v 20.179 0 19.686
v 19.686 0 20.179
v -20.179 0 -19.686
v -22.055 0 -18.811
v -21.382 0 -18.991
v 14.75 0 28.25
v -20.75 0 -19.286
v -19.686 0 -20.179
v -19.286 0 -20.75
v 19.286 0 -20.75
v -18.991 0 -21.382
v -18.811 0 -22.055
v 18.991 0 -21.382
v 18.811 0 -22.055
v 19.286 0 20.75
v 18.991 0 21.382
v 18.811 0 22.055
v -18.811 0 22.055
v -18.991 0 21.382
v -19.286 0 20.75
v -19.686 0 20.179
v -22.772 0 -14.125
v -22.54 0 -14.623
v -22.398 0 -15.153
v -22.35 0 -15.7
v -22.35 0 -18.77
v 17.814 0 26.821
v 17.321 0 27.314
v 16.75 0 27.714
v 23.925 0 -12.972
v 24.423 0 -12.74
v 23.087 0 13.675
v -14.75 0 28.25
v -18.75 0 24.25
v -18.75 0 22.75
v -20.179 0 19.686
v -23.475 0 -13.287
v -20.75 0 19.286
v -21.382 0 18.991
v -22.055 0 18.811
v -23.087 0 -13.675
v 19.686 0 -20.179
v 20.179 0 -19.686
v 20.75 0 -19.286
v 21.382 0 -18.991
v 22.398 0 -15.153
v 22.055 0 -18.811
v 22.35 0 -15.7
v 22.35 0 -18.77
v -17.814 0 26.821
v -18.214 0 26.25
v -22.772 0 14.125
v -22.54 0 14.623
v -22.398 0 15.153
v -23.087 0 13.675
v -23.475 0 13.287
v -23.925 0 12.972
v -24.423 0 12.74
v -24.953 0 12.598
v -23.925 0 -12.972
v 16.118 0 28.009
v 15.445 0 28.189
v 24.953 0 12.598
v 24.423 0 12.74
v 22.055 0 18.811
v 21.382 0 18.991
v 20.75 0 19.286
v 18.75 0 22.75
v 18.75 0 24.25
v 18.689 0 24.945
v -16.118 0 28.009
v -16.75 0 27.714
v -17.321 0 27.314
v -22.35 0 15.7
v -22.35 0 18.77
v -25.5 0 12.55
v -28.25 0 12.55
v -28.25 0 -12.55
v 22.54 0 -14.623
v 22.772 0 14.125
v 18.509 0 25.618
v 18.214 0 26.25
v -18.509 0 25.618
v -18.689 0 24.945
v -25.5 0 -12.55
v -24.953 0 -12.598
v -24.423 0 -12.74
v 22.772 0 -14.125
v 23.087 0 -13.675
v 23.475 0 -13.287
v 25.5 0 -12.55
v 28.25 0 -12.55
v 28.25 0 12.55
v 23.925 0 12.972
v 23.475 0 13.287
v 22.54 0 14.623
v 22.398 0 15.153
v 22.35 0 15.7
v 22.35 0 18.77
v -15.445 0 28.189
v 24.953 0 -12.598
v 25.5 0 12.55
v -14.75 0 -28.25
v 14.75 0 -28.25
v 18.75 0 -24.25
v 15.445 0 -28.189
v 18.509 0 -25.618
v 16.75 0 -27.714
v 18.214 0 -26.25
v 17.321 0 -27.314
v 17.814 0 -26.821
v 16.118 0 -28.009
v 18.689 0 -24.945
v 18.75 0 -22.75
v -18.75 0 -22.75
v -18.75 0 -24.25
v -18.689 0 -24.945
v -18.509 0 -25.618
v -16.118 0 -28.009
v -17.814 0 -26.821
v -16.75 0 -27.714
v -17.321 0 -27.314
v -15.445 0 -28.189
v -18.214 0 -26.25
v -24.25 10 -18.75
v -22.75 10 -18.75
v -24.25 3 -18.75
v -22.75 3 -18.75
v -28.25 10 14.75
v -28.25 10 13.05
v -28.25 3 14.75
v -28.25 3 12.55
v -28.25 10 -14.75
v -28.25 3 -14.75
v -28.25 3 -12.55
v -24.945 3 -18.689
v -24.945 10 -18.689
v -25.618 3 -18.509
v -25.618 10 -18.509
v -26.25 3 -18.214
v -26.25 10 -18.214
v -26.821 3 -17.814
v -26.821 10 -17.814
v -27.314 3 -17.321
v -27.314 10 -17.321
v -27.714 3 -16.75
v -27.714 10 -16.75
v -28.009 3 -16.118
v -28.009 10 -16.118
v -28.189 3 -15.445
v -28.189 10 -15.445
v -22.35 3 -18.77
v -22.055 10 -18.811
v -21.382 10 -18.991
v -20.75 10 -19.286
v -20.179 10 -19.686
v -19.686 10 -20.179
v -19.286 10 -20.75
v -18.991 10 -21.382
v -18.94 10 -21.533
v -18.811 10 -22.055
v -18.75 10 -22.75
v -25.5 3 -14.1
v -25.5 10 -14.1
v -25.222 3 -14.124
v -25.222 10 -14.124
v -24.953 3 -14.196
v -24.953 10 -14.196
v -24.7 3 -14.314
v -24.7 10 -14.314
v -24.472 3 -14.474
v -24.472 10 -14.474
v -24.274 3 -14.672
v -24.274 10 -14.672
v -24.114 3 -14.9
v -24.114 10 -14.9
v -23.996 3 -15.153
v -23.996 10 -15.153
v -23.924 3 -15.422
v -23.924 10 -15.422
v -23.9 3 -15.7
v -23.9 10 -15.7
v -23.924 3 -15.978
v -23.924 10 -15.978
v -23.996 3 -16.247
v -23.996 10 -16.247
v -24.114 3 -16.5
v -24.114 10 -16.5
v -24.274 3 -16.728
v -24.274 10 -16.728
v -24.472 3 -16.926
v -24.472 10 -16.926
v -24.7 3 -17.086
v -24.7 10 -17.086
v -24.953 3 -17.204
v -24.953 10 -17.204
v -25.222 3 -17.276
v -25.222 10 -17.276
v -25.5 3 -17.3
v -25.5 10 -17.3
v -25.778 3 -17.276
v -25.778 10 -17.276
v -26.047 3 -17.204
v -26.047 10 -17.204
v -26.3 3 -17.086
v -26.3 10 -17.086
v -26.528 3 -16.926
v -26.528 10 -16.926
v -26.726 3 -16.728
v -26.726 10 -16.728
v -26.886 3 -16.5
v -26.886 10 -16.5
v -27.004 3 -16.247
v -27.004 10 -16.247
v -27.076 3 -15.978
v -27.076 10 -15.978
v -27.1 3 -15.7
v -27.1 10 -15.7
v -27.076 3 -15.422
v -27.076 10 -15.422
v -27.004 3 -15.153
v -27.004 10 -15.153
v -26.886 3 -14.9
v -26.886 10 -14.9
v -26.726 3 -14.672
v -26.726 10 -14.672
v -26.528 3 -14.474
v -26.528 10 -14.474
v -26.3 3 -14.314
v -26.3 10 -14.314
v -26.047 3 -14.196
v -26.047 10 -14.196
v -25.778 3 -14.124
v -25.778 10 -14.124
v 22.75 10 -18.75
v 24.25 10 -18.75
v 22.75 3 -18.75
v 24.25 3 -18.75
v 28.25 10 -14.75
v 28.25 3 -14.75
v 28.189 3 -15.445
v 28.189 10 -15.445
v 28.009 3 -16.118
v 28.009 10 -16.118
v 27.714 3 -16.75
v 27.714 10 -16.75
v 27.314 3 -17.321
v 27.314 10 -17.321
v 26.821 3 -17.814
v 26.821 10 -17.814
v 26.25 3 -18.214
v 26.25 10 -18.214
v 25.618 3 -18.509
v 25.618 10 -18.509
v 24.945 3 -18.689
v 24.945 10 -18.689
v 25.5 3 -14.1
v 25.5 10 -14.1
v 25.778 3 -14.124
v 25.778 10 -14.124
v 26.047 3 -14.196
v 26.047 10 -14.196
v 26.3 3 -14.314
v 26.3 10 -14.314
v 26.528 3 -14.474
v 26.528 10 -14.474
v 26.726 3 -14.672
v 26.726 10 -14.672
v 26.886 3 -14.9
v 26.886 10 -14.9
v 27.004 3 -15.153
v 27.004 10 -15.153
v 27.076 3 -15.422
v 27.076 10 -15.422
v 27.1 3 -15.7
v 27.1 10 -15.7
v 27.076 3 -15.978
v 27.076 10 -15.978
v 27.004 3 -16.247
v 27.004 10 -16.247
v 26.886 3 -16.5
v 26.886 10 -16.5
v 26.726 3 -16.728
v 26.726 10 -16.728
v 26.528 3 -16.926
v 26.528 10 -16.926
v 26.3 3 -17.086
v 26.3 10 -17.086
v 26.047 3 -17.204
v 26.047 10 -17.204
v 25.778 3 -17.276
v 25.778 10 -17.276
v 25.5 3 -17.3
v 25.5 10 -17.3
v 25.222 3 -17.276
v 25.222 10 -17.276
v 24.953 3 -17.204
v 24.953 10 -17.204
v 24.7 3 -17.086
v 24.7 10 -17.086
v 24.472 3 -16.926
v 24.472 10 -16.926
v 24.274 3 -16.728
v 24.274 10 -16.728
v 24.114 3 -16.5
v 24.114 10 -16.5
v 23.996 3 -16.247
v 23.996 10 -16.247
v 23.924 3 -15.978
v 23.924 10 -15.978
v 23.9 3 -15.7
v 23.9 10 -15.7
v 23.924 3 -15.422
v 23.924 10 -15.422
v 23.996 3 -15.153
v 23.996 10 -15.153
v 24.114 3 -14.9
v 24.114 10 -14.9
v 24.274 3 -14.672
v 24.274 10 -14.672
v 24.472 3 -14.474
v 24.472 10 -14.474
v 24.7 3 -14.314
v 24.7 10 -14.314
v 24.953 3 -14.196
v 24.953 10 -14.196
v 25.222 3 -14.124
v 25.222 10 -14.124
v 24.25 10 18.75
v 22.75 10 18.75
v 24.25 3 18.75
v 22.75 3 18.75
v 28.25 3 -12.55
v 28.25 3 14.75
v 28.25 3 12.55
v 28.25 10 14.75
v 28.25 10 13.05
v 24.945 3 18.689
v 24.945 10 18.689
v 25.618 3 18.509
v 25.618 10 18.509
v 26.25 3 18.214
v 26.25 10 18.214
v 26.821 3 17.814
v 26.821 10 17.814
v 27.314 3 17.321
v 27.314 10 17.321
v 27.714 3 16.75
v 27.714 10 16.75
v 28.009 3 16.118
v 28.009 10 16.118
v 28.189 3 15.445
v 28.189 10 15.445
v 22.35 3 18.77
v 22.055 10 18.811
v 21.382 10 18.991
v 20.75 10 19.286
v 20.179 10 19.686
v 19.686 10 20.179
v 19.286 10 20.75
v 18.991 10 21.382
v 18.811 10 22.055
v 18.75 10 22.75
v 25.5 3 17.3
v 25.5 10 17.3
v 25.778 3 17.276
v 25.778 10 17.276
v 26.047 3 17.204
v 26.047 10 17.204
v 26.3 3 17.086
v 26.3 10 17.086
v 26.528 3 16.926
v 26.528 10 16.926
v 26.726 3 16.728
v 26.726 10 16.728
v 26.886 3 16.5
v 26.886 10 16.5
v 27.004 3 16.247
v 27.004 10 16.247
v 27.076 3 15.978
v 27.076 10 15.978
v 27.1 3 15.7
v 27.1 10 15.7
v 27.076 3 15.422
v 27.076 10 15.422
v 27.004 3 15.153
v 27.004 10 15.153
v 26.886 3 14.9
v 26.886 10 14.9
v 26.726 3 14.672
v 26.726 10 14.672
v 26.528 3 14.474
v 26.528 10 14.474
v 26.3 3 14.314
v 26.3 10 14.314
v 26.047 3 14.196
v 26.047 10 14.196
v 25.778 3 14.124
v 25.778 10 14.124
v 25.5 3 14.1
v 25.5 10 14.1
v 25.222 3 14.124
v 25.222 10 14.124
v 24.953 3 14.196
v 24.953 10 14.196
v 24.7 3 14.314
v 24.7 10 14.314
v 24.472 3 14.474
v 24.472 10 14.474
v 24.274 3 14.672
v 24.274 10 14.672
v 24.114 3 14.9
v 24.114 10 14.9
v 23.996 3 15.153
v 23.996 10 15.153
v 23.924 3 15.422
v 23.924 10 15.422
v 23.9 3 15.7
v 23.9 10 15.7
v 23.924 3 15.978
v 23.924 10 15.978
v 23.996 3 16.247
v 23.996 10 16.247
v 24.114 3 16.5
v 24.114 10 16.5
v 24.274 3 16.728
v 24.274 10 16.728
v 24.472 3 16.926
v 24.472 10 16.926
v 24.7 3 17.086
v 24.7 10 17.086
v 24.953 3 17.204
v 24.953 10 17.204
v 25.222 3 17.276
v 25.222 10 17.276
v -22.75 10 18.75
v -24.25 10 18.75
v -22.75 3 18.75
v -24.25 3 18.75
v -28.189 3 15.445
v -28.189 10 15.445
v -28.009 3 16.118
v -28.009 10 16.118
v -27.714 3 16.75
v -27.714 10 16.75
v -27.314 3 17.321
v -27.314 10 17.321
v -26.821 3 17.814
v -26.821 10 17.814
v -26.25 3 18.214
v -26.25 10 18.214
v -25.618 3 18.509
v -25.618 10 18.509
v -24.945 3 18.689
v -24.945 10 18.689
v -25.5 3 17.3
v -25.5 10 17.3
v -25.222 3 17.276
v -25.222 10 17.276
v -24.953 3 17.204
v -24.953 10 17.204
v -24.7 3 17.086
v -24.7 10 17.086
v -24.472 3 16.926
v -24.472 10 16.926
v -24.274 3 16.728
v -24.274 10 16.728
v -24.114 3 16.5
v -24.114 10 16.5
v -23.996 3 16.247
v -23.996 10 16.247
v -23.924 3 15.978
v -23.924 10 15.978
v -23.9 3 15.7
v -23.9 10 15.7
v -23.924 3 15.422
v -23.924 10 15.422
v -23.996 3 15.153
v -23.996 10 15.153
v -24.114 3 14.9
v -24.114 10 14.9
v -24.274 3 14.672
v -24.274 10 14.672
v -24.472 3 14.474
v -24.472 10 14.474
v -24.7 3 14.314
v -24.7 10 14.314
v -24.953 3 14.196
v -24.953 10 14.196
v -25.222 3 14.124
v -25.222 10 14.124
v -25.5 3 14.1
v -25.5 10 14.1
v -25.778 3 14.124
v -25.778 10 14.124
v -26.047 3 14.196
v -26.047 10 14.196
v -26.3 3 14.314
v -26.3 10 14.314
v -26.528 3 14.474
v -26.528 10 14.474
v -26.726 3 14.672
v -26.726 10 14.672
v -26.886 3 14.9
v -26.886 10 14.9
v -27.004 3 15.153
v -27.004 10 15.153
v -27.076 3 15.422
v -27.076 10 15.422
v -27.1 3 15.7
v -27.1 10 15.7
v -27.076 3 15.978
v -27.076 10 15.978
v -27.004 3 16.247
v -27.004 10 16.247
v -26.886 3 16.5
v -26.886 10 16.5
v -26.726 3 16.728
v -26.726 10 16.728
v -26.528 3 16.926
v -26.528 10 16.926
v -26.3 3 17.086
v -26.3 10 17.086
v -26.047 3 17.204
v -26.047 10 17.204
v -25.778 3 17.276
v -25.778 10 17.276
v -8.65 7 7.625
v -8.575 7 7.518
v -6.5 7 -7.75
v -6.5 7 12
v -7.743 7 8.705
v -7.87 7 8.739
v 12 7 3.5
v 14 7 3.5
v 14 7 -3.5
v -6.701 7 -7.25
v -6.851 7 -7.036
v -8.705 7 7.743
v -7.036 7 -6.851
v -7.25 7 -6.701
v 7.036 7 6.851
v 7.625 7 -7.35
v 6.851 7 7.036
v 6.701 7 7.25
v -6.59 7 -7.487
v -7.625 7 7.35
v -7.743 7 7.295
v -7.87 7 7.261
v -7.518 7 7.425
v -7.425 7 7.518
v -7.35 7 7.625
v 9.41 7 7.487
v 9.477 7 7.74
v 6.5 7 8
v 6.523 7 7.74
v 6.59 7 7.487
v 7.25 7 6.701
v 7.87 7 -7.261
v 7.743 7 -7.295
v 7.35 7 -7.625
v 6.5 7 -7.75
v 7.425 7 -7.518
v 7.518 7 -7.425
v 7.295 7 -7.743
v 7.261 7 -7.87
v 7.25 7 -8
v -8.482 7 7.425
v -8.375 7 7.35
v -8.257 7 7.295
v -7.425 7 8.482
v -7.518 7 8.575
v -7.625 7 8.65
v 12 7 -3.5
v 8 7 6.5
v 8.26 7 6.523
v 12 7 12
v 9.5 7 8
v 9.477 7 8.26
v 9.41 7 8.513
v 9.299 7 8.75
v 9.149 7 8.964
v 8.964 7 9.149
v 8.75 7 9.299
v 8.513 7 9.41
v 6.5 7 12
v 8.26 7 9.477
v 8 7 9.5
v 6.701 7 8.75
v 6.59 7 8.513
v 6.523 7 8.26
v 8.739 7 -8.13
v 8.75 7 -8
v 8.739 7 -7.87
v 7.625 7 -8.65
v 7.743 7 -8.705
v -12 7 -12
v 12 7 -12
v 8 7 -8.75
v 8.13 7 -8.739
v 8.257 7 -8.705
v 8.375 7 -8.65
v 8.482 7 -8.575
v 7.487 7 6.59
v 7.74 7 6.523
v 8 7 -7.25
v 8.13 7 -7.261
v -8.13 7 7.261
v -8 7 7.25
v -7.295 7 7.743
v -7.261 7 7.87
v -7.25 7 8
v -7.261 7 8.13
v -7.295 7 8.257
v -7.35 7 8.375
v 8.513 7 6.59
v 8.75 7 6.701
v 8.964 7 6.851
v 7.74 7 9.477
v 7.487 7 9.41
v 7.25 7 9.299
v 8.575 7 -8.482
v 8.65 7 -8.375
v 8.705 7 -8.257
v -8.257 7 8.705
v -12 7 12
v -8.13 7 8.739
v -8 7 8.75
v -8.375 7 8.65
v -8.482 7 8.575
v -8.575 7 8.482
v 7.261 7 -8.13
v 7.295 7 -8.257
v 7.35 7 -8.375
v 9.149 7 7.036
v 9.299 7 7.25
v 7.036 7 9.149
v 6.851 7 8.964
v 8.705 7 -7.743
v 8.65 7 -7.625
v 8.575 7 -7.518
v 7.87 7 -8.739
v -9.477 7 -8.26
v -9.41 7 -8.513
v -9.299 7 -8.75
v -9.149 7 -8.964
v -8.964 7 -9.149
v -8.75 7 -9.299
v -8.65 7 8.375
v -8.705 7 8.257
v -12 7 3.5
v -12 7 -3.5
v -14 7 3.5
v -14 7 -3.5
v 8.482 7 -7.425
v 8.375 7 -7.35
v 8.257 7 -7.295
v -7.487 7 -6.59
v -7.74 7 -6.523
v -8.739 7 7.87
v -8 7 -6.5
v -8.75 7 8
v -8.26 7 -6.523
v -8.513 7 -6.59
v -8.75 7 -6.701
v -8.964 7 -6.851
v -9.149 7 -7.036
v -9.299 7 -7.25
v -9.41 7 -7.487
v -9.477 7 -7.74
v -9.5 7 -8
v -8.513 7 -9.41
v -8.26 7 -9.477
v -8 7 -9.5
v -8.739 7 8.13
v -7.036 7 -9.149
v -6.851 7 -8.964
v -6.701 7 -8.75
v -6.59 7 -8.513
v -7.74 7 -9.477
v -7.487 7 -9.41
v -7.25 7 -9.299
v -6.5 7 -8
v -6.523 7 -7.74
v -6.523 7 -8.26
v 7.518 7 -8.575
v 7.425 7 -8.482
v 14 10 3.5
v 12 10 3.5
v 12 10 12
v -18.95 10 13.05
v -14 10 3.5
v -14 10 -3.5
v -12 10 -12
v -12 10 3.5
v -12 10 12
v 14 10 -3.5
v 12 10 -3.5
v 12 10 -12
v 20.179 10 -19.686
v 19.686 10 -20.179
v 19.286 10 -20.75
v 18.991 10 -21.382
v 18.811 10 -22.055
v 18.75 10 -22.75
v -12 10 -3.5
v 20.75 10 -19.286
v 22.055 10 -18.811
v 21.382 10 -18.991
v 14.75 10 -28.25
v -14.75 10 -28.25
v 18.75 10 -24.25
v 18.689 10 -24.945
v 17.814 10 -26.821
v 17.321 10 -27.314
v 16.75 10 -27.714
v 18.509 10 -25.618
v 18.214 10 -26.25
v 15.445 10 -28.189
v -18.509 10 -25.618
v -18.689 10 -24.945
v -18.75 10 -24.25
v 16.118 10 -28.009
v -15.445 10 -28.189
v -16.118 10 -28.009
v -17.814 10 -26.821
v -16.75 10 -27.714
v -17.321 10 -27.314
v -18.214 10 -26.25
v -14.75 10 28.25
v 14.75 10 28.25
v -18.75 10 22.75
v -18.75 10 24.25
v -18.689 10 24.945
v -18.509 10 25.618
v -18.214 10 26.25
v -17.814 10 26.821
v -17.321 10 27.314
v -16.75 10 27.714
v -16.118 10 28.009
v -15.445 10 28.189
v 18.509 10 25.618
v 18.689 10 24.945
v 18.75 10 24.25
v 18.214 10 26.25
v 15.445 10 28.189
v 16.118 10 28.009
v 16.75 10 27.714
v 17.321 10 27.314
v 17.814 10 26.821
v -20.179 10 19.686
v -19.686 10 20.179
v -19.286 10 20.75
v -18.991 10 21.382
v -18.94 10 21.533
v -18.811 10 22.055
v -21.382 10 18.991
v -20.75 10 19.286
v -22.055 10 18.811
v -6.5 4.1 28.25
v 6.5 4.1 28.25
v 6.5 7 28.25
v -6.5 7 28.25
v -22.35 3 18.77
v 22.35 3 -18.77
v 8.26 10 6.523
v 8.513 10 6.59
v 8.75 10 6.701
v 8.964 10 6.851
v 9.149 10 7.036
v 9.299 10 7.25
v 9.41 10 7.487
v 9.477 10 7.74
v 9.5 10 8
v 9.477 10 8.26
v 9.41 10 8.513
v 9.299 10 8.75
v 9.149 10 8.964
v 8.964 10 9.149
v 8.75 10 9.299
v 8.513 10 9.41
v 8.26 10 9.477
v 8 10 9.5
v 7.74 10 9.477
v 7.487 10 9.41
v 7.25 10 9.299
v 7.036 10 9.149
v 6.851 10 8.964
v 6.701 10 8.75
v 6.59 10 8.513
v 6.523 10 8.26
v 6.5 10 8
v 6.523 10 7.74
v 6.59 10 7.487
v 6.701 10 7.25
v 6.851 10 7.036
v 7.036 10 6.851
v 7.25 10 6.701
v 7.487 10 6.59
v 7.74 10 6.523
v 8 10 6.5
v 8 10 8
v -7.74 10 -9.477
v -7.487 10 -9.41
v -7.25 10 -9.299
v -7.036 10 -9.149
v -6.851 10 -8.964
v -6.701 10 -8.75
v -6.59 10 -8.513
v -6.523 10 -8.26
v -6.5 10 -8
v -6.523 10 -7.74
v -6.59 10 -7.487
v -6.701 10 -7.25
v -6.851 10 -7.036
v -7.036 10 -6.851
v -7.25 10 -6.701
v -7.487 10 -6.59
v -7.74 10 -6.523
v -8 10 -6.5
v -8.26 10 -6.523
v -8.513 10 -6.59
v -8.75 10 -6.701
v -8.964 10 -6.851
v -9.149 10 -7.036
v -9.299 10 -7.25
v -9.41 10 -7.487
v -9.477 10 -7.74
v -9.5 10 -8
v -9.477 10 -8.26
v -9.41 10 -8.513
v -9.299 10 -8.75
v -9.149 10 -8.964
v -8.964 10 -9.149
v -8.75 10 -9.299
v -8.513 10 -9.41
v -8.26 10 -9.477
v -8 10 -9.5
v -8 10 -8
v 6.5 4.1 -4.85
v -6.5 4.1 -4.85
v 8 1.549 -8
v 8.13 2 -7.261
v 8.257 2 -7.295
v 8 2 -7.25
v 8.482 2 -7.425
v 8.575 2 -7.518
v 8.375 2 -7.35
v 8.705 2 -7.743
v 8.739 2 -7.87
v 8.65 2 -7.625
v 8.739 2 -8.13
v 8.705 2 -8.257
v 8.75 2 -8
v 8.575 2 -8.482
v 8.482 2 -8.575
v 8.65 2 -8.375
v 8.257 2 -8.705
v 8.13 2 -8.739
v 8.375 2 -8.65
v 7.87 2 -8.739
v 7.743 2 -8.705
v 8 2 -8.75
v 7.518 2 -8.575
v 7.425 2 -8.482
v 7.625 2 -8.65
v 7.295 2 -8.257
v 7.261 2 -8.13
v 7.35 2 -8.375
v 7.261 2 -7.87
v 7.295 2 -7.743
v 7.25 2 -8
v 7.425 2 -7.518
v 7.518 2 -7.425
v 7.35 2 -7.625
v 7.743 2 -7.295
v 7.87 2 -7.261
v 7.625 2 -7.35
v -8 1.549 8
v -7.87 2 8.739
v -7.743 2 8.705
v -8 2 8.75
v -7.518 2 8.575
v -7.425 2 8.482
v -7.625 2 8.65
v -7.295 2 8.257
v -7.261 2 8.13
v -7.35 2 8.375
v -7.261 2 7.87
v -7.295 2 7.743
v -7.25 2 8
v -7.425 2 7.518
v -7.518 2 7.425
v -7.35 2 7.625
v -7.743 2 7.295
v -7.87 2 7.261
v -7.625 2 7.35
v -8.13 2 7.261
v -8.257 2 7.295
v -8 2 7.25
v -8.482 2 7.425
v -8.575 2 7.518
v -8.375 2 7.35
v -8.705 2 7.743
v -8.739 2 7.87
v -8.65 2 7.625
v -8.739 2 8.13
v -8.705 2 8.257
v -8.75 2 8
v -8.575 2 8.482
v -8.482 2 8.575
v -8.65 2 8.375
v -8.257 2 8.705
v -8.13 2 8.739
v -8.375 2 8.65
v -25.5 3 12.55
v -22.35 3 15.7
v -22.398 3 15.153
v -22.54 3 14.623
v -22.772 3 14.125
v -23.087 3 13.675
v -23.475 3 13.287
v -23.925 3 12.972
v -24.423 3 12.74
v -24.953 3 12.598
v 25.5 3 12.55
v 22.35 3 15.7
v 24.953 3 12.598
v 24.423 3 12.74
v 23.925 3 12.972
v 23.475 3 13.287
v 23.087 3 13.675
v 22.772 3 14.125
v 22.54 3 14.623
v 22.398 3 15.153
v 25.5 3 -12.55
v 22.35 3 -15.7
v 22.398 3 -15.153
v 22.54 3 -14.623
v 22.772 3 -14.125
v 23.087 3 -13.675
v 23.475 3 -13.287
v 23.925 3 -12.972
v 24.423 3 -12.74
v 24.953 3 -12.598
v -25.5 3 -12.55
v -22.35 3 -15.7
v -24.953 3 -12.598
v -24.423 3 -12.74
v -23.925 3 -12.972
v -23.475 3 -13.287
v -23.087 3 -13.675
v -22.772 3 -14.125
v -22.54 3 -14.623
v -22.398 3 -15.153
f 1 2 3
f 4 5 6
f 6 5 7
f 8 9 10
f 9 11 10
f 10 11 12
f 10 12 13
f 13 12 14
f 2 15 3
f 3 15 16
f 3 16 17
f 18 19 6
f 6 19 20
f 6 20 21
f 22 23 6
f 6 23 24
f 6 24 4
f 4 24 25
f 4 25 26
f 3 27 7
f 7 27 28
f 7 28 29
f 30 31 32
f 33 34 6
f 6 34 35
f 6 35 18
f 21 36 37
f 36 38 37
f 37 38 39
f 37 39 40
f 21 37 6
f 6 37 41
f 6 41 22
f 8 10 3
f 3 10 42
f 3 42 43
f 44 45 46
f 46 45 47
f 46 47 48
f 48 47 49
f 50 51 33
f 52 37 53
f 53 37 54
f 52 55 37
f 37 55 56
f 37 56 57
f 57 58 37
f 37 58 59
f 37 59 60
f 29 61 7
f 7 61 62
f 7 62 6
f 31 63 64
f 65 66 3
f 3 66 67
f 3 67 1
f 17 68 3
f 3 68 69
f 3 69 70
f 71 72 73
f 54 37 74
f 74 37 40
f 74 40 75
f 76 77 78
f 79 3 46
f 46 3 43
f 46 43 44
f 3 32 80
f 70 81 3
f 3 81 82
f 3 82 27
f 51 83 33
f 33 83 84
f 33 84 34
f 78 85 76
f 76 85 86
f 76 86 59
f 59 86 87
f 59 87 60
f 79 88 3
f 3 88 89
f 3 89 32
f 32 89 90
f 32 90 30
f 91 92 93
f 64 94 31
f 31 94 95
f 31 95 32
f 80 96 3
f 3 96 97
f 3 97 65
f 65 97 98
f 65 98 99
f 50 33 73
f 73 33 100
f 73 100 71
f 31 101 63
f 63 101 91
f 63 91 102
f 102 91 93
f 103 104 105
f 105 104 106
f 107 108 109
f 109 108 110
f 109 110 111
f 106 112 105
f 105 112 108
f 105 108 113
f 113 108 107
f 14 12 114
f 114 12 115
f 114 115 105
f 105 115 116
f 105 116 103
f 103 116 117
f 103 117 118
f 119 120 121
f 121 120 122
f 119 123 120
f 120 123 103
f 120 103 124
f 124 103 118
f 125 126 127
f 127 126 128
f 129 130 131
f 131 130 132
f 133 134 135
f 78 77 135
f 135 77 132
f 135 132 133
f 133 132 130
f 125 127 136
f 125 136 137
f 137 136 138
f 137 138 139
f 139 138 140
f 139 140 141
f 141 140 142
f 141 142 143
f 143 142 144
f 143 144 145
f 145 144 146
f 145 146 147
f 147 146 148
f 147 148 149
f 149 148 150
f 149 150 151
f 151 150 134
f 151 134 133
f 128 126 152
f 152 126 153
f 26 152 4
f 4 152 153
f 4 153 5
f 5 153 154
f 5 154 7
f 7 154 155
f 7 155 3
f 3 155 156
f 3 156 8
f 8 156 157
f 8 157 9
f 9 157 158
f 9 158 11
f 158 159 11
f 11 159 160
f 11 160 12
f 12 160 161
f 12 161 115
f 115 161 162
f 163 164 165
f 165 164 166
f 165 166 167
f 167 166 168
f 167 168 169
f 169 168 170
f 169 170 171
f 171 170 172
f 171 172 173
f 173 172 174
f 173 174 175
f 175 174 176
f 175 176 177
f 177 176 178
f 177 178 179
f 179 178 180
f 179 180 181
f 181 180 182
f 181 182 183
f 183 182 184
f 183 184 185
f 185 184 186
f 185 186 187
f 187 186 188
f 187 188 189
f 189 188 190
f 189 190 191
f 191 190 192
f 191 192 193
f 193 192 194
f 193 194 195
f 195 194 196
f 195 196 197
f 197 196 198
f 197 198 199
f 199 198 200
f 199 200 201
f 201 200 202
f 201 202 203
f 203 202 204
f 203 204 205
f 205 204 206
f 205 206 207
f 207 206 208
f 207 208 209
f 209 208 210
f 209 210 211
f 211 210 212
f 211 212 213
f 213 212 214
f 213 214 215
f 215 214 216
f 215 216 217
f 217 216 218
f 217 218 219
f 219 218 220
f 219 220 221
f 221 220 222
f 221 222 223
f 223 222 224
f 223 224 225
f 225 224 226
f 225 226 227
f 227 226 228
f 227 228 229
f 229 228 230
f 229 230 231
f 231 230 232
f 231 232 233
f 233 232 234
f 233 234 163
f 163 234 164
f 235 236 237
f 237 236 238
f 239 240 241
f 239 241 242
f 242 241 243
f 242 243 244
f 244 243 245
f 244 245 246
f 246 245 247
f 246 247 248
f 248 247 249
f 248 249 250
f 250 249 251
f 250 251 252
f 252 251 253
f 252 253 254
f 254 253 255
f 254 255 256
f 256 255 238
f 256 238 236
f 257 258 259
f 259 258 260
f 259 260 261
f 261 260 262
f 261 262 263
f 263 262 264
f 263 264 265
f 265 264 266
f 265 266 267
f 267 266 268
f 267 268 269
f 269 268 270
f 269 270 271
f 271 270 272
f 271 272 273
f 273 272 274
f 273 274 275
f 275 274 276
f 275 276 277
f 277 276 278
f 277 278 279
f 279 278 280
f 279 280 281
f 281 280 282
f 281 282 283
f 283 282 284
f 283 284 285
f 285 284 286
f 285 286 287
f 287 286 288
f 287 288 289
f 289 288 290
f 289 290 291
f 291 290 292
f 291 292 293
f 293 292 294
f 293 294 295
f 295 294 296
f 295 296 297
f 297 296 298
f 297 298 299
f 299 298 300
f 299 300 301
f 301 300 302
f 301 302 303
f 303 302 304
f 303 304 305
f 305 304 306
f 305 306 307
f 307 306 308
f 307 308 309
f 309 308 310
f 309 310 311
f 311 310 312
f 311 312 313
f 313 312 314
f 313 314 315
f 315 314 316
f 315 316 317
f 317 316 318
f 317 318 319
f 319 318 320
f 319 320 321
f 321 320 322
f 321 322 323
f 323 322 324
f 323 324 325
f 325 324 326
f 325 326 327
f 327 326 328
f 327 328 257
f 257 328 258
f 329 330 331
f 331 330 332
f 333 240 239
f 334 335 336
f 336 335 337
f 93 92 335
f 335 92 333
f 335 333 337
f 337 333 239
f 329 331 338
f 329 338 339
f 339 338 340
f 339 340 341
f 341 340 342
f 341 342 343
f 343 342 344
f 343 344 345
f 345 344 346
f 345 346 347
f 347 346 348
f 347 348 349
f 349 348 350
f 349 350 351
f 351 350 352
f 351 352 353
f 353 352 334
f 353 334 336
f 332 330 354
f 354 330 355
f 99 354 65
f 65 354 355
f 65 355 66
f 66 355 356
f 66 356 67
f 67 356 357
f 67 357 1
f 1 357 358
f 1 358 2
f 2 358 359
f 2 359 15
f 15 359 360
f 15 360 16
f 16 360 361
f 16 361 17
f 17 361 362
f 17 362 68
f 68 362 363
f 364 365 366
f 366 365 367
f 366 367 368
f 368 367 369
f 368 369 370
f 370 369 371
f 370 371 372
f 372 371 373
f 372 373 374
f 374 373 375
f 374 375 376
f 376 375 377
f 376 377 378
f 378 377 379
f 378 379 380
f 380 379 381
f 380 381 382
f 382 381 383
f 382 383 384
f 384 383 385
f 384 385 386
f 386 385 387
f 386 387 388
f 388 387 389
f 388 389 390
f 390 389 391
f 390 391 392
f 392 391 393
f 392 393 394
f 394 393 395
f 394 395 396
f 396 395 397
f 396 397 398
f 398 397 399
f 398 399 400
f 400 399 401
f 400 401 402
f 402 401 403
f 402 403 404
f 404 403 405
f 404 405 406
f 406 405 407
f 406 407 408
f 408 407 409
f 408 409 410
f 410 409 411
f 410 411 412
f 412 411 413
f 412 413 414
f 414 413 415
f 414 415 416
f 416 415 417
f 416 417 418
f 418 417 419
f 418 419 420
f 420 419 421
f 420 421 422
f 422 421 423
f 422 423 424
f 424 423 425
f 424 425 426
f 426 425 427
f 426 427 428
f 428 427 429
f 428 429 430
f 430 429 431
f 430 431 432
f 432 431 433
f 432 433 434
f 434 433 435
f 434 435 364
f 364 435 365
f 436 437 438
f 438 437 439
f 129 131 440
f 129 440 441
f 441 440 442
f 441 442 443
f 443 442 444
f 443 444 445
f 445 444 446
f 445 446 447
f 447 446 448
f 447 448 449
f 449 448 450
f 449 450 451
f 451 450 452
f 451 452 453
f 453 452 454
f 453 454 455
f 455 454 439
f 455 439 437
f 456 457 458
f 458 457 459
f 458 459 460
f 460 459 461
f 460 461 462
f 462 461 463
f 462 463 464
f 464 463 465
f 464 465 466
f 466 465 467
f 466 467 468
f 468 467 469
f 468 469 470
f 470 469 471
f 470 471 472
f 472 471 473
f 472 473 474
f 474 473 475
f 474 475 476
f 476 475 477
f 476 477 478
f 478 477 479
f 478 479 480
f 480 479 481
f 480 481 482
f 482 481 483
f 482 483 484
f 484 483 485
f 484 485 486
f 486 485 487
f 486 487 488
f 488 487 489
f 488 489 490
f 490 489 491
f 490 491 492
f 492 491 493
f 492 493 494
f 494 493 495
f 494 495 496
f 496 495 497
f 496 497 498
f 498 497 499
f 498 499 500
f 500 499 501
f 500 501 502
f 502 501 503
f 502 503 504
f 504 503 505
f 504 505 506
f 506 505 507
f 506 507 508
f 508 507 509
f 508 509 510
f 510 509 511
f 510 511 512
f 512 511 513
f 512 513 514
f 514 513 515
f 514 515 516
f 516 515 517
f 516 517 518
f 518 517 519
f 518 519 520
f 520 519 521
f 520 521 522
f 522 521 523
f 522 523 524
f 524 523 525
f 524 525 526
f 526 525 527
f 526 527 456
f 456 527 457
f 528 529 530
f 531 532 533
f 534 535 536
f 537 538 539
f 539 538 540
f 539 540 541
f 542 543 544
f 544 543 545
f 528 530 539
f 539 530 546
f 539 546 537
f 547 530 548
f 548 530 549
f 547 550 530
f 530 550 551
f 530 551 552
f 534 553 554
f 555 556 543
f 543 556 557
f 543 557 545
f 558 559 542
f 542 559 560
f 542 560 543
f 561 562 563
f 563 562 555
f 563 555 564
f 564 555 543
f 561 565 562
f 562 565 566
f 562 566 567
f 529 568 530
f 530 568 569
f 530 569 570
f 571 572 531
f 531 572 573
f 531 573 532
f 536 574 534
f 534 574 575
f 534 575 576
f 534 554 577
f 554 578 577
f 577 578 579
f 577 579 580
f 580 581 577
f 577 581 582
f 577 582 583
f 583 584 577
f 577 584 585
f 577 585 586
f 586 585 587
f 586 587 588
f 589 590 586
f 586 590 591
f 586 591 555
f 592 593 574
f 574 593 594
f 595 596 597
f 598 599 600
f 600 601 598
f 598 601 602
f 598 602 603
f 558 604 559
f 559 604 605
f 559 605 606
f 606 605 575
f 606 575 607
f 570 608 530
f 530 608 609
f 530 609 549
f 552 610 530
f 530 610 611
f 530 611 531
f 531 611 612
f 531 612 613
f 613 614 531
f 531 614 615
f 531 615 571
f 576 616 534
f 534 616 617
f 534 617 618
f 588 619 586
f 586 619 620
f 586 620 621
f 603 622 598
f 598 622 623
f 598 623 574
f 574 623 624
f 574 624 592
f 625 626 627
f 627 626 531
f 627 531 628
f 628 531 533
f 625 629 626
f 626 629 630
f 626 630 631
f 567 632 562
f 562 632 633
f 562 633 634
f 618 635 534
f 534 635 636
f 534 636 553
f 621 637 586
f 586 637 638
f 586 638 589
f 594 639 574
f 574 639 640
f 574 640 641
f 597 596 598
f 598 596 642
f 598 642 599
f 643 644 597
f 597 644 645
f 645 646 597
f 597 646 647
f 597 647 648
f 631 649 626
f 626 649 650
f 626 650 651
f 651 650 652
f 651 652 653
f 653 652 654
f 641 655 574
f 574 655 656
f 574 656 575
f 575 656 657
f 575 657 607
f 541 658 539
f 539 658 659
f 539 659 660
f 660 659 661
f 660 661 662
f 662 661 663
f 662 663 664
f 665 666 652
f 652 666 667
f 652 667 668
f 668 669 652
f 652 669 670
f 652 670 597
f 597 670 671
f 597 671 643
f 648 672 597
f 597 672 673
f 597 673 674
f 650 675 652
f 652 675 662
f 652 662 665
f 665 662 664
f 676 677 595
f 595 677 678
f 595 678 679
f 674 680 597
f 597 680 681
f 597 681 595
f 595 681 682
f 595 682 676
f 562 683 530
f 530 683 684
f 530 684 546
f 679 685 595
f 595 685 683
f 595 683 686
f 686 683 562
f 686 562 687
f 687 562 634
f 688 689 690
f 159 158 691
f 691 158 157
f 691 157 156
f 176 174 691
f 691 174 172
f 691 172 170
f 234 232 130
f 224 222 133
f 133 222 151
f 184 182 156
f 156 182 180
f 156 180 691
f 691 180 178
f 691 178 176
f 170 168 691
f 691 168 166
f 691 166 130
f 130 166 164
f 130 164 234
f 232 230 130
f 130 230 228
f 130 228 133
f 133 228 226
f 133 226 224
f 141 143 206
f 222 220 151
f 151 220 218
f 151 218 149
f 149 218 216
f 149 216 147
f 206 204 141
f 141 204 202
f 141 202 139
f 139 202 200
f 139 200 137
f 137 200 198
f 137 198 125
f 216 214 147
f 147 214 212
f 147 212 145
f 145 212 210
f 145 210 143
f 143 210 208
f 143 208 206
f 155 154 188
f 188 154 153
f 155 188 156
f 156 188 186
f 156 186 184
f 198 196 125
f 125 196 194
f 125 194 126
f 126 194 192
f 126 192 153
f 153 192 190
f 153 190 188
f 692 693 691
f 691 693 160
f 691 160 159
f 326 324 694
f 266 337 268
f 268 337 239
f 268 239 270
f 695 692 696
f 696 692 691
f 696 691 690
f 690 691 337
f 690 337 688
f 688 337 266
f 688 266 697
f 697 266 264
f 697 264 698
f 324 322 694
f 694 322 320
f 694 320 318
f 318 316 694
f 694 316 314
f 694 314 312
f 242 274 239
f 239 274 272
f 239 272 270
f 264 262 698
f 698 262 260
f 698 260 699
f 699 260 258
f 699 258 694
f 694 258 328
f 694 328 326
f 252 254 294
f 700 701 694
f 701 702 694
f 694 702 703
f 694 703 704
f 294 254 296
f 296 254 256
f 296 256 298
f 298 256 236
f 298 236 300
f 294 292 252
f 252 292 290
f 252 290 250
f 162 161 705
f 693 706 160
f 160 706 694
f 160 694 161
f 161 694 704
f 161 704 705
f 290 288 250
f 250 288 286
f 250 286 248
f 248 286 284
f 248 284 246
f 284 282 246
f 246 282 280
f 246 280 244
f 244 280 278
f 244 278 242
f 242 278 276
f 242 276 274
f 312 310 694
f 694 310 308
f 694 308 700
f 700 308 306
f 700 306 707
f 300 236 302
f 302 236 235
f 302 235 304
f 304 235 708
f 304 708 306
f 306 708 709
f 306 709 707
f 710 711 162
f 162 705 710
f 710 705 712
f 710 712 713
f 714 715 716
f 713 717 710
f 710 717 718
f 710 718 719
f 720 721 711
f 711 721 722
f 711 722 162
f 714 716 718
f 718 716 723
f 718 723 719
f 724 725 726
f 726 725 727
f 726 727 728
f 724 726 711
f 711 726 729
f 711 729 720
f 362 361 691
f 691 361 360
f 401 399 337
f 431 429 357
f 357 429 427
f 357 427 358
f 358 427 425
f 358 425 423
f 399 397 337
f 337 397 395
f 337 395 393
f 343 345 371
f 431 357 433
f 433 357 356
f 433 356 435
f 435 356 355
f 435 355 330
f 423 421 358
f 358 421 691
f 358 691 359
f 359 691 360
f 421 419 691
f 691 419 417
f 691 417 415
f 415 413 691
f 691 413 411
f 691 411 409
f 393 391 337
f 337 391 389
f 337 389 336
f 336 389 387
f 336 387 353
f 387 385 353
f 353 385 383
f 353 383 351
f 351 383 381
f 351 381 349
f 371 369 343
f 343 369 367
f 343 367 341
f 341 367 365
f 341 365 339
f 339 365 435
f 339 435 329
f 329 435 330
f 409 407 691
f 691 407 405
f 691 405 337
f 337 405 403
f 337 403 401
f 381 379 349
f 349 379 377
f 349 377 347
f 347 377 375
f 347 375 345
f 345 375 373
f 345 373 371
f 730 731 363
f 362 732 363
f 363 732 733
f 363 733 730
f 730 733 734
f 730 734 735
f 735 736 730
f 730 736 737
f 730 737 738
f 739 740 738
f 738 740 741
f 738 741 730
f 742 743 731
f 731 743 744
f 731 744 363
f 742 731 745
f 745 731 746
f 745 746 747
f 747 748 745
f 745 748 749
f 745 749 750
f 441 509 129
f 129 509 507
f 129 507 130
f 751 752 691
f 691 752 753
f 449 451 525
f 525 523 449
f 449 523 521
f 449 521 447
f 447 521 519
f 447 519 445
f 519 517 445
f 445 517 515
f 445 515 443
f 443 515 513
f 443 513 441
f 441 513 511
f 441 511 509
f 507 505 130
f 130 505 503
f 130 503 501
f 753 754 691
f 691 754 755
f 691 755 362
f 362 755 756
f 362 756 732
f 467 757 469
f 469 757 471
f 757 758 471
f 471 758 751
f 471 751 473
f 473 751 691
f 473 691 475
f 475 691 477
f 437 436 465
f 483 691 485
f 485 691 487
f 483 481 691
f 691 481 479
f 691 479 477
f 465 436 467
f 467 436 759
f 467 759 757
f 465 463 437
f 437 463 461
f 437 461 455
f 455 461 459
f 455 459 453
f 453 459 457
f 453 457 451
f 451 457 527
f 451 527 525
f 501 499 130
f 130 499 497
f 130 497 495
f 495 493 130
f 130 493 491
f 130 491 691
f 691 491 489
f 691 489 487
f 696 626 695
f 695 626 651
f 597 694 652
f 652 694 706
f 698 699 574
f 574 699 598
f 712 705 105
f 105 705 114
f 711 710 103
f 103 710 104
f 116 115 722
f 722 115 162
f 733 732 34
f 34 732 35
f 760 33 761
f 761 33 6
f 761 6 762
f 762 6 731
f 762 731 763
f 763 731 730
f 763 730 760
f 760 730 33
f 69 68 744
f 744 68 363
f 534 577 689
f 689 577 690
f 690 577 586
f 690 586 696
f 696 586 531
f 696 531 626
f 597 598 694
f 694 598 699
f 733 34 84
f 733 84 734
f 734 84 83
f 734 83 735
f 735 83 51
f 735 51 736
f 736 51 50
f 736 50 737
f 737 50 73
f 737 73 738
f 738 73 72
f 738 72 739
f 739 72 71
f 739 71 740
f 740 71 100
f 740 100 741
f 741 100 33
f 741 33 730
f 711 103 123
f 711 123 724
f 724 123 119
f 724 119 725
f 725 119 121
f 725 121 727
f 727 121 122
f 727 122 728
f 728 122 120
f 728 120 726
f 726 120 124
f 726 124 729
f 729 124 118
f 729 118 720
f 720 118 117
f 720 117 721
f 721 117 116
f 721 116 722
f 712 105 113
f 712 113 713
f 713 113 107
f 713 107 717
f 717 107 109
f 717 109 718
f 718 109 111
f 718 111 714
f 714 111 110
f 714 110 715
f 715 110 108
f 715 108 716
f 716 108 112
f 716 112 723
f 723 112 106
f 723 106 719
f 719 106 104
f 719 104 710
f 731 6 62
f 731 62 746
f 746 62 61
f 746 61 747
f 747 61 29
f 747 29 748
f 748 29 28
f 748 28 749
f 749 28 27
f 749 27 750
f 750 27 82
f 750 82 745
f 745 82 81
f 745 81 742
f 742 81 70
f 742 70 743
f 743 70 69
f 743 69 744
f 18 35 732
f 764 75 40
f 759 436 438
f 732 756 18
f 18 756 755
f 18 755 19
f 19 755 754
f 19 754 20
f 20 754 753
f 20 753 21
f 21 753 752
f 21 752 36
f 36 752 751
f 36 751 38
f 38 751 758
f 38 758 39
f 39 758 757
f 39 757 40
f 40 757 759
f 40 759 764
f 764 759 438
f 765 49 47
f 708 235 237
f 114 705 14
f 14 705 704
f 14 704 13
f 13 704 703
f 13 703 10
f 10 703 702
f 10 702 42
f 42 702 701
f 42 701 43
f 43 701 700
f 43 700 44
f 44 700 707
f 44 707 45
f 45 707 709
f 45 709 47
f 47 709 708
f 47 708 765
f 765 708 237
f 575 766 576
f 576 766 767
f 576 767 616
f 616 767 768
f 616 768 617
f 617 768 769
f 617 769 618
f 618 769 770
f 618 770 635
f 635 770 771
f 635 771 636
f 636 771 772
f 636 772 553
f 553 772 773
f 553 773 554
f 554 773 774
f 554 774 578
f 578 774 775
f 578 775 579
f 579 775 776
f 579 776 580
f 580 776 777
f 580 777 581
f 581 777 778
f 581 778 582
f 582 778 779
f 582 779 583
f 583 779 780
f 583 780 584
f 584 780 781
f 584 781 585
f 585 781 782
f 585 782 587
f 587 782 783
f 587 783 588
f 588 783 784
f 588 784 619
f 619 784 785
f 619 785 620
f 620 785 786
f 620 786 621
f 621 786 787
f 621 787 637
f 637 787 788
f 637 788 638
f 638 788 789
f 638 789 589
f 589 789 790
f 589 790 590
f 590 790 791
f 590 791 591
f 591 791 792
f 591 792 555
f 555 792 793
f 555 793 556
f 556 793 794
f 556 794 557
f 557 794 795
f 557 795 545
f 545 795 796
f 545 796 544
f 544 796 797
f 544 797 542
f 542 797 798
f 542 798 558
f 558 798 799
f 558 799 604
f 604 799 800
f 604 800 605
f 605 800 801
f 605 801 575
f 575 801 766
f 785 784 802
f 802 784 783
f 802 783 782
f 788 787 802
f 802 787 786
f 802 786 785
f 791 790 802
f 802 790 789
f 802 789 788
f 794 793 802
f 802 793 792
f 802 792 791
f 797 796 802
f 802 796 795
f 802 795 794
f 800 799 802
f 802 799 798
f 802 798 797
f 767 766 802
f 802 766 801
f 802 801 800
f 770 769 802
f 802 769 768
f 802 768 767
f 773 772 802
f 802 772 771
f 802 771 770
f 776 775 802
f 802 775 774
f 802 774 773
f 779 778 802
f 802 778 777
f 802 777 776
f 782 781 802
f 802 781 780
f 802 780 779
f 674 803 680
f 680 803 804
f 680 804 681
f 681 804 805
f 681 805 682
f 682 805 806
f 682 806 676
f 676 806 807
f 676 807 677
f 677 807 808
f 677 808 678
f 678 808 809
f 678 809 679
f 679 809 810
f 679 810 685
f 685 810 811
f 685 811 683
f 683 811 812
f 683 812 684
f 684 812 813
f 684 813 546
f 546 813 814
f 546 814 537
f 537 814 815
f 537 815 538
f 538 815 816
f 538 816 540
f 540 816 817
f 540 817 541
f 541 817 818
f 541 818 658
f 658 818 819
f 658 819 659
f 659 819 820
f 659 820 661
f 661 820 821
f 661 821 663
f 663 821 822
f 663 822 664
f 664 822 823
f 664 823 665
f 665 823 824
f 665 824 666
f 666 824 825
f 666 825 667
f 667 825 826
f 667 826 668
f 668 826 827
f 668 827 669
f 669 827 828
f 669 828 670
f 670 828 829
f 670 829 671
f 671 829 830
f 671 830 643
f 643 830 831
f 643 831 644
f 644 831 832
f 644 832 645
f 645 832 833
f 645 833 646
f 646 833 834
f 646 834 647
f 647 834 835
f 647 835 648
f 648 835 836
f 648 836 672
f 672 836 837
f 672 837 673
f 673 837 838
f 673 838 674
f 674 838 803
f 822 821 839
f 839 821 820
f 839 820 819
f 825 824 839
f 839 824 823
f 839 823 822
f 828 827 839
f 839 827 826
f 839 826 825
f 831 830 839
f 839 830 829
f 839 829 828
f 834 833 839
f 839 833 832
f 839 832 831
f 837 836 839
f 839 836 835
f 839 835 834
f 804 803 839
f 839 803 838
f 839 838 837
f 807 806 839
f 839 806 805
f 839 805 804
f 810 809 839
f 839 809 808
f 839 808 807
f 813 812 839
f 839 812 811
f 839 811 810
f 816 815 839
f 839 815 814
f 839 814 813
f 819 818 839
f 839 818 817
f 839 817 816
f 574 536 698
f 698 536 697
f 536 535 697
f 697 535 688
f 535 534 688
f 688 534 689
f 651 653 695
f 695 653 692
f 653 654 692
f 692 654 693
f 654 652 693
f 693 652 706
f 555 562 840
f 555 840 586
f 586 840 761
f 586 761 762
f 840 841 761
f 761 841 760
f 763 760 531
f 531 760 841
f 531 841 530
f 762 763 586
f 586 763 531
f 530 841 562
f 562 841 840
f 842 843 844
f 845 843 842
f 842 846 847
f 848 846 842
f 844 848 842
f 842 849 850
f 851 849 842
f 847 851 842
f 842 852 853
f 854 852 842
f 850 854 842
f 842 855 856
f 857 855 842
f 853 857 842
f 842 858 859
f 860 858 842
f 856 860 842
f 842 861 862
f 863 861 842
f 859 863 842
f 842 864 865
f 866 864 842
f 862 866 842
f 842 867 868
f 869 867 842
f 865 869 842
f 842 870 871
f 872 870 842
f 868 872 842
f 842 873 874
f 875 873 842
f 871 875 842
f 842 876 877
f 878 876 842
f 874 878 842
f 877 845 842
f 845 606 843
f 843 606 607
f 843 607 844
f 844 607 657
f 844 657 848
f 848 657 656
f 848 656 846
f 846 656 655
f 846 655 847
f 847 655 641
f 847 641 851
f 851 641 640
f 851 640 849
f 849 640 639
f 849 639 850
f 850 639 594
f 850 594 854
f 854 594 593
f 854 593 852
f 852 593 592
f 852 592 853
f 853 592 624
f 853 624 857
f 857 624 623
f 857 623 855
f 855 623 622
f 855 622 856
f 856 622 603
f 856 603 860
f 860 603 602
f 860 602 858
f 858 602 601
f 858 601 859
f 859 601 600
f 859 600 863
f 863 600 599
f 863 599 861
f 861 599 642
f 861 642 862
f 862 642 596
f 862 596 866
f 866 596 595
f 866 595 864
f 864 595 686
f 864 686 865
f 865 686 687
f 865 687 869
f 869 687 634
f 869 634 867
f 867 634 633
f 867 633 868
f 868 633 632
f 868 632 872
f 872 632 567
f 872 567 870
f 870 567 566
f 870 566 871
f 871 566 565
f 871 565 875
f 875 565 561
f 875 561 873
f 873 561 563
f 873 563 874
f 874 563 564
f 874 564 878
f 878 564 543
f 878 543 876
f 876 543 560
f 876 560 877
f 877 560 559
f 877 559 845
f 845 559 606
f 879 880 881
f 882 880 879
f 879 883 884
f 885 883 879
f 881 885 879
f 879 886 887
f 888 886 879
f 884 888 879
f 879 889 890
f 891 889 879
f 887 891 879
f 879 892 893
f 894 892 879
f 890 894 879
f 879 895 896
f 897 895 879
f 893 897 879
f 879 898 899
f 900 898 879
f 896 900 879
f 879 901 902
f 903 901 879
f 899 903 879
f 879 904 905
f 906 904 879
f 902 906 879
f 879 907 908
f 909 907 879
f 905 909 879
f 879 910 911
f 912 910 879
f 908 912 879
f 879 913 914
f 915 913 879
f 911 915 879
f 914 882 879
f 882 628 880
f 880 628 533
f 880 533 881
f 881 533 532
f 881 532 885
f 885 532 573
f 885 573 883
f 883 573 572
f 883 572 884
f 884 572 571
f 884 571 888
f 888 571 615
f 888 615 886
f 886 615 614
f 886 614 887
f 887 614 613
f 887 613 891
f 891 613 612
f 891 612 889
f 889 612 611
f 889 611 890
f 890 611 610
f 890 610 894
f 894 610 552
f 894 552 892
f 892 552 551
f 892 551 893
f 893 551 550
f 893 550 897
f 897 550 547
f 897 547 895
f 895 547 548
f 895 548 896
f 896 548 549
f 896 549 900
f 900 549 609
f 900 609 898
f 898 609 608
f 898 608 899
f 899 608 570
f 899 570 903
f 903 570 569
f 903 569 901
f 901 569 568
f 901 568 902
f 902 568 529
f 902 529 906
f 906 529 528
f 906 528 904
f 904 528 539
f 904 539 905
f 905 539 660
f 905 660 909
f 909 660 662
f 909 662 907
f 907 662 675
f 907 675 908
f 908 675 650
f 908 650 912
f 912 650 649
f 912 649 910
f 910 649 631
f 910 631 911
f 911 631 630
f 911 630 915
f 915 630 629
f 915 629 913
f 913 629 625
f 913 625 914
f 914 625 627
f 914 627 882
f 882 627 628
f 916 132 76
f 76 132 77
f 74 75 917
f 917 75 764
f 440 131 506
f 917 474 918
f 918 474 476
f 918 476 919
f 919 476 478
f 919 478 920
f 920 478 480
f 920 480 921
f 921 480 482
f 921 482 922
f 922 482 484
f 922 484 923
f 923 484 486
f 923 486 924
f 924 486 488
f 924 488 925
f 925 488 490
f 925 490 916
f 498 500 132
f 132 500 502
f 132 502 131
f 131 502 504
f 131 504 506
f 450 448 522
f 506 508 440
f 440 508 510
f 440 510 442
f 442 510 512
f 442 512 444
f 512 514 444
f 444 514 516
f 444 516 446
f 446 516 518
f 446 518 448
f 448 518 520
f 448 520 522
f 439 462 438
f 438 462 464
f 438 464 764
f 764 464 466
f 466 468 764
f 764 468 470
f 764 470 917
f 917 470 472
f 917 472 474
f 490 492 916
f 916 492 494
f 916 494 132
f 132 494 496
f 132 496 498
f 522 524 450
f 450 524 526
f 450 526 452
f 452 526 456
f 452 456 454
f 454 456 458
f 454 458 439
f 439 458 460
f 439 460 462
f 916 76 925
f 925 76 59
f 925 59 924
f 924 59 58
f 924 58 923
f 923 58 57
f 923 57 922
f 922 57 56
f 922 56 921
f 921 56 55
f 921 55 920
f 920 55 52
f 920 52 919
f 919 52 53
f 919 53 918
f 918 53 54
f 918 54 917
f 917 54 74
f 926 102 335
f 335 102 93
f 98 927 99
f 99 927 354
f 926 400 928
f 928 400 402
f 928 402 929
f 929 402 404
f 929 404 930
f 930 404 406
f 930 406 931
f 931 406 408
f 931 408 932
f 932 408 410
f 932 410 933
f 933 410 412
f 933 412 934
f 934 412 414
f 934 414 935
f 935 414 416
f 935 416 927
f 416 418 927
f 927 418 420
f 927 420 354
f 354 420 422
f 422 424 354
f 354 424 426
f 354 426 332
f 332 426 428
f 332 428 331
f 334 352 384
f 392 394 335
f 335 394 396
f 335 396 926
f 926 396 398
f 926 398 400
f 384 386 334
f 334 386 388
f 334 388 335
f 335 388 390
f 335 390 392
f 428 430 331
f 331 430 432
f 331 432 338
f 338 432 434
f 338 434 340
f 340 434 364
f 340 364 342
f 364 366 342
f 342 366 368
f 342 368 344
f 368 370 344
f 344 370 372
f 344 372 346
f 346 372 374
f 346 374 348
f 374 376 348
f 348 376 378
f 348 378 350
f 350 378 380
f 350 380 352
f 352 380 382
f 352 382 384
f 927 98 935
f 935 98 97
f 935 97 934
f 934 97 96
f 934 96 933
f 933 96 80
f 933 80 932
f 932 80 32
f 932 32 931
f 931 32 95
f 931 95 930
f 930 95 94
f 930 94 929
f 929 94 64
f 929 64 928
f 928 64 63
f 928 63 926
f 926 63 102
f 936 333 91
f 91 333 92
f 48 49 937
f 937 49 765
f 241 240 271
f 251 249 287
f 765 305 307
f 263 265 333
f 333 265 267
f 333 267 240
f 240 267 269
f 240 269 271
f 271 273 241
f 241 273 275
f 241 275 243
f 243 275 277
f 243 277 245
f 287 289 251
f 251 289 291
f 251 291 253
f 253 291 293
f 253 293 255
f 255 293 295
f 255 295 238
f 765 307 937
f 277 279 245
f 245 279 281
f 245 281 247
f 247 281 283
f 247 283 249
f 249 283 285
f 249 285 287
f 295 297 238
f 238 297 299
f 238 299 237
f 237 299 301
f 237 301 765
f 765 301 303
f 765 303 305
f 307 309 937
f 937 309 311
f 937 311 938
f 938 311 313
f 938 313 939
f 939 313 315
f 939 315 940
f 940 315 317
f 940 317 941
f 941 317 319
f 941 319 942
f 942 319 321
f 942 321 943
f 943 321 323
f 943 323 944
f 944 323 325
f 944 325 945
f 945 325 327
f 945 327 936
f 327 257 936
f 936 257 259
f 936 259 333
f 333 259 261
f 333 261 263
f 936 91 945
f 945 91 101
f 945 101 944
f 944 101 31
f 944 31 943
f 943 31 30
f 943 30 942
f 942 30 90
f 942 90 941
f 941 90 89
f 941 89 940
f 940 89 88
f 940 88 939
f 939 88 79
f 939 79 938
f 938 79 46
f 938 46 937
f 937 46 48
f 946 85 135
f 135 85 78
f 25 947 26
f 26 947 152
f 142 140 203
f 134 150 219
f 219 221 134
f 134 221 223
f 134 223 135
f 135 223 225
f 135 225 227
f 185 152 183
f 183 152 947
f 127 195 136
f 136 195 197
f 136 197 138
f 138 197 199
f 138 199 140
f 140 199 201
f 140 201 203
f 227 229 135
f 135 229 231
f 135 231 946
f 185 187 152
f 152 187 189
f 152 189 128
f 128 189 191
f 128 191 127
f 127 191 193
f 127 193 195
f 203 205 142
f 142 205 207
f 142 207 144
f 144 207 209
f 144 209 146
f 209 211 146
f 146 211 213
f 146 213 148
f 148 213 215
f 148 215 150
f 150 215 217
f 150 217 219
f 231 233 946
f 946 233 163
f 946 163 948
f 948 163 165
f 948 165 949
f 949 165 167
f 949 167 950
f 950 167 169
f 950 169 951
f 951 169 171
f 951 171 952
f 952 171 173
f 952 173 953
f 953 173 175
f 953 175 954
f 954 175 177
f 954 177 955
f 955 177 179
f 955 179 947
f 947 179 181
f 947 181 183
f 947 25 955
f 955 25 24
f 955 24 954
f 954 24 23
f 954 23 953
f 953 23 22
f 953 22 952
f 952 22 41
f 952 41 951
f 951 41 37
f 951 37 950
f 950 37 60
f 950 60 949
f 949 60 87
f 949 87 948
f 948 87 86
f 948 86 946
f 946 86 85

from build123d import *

# Parameters (mm, degrees)
AUFSATZ_LINEAR_AUSTRAGEN1_DEPTH      = 10
SKIZZE2_W                            = 24
SKIZZE2_H                            = 24
SCHNITT_LINEAR_AUSTRAGEN1_DEPTH      = 3
VERRUNDUNG1_R                        = 4
SKIZZE3_R                            = 1.5
AUFSATZ_LINEAR_AUSTRAGEN2_DEPTH      = 3
SKIZZE4_W                            = 2
SKIZZE4_H                            = 7
SCHNITT_LINEAR_AUSTRAGEN2_DEPTH      = 3
SKIZZE5_W                            = 13
SKIZZE5_H                            = 2.9
SCHNITT_LINEAR_AUSTRAGEN3_DEPTH      = 32
FASE1_SIZE                           = 4
F_3_2_3_2_DURCHMESSER_BOHRUNG1_D     = 3.2
F_3_2_3_2_DURCHMESSER_BOHRUNG1_DEPTH = 11
F_3_2_3_2_DURCHMESSER_BOHRUNG1_TIP   = 0.96137699
F_1_5_1_5_DURCHMESSER_BOHRUNG1_D     = 1.5
F_1_5_1_5_DURCHMESSER_BOHRUNG1_DEPTH = 5
F_1_5_1_5_DURCHMESSER_BOHRUNG1_TIP   = 0.450645464
SCHNITT_LINEAR_AUSTRAGEN4_DEPTH      = 3
SPIEGELN3_COPY_1_DEPTH               = 3


with BuildPart() as part:
    # Skizze1 → Aufsatz-Linear austragen1 (new body)
    with BuildSketch(Plane(origin=(0, 0, 0), x_dir=(1, 0, 0), z_dir=(0, 1, 0))):
        Polygon((18.75, 18.75), (28.25, 18.75), (28.25, -18.75), (18.75, -18.75), (18.75, -28.25), (-18.75, -28.25), (-18.75, -18.75), (-28.25, -18.75), (-28.25, 18.75), (-18.75, 18.75), (-18.75, 28.25), (18.75, 28.25), align=None)
    extrude(amount=AUFSATZ_LINEAR_AUSTRAGEN1_DEPTH)

    # Skizze2 → Schnitt-Linear austragen1 (cut)
    with BuildSketch(Plane(origin=(0, 10, 0), x_dir=(1, 0, 0), z_dir=(0, 1, 0))):
        Rectangle(SKIZZE2_W, SKIZZE2_H)
    extrude(amount=-SCHNITT_LINEAR_AUSTRAGEN1_DEPTH, mode=Mode.SUBTRACT)

    # Verrundung1
    verrundung1_edges = [part.edges().sort_by_distance(p)[0] for p in [
        (18.75, 5, 18.75),
        (18.75, 5, 28.25),
        (-18.75, 5, 28.25),
        (-18.75, 5, 18.75),
        (-28.25, 5, 18.75),
        (-28.25, 5, -18.75),
        (-18.75, 5, -18.75),
        (-18.75, 5, -28.25),
        (18.75, 5, -28.25),
        (18.75, 5, -18.75),
        (28.25, 5, -18.75),
        (28.25, 5, 18.75),
    ]]
    fillet(verrundung1_edges, radius=VERRUNDUNG1_R)

    # Skizze3 → Aufsatz-Linear austragen2 (add)
    with BuildSketch(Plane(origin=(0, 7, 0), x_dir=(1, 0, 0), z_dir=(0, 1, 0))):
        with Locations(Location((-8, 8, 0), (0, 0, 270))):
            Circle(SKIZZE3_R)
        with Locations(Location((8, -8, 0), (0, 0, 270))):
            Circle(SKIZZE3_R)
    extrude(amount=AUFSATZ_LINEAR_AUSTRAGEN2_DEPTH)

    # Skizze4 → Schnitt-Linear austragen2 (cut)
    with BuildSketch(Plane(origin=(0, 10, 0), x_dir=(1, 0, 0), z_dir=(0, 1, 0))):
        with Locations((13, 0)):
            Rectangle(SKIZZE4_W, SKIZZE4_H)
    schnitt_linear_austragen2 = extrude(amount=-SCHNITT_LINEAR_AUSTRAGEN2_DEPTH, mode=Mode.SUBTRACT)

    # Spiegeln1: Schnitt-Linear austragen2 across plane
    add(schnitt_linear_austragen2.mirror(Plane(origin=(0, 0, 0), x_dir=(0, 0, 1), z_dir=(1, 0, 0))), mode=Mode.SUBTRACT)

    # Skizze5 → Schnitt-Linear austragen3 (cut)
    with BuildSketch(Plane.XY.offset(28.25)):
        with Locations((0, 5.55)):
            Rectangle(SKIZZE5_W, SKIZZE5_H)
    extrude(amount=-SCHNITT_LINEAR_AUSTRAGEN3_DEPTH, mode=Mode.SUBTRACT)

    # Fase1
    # the kernel refuses this chamfer: 4 mm, written as the material it takes off along each edge
    with BuildSketch(Plane(origin=(-6.5, 7, -3.75), x_dir=(0, 0.027495876610586494, -0.9996219169112968), z_dir=(1, 0, 0))) as fase1_piece_1_section:
        Polygon((FASE1_SIZE * 0.999621916911, -FASE1_SIZE * 0.0274958766106), (-FASE1_SIZE * 0.0274958766106, -FASE1_SIZE * 0.999621916911), (0, 0), align=None)
    fase1_piece_1 = extrude(amount=13, mode=Mode.PRIVATE)
    fase1_piece_1 = split(fase1_piece_1, bisect_by=Plane(origin=(0, 4.1, -5.171489132), z_dir=(0, 1, 0)), keep=Keep.TOP, mode=Mode.PRIVATE)
    add(fase1_piece_1, mode=Mode.SUBTRACT)

    # Ø3.2 (3.2) Durchmesser Bohrung1
    with Locations(Plane(origin=(0, 10, 0), x_dir=(1, 0, 0), z_dir=(0, 1, 0))):
        with Locations((-25.5, -15.7), (25.5, 15.7), (25.5, -15.7), (-25.5, 15.7)):
            Hole(F_3_2_3_2_DURCHMESSER_BOHRUNG1_D / 2, depth=F_3_2_3_2_DURCHMESSER_BOHRUNG1_DEPTH)
            with Locations((0, 0, -(F_3_2_3_2_DURCHMESSER_BOHRUNG1_DEPTH + F_3_2_3_2_DURCHMESSER_BOHRUNG1_TIP / 2))):  # 118° drill point
                Cone(0, F_3_2_3_2_DURCHMESSER_BOHRUNG1_D / 2, F_3_2_3_2_DURCHMESSER_BOHRUNG1_TIP, mode=Mode.SUBTRACT)

    # Ø1.5 (1.5) Durchmesser Bohrung1
    with Locations(Plane(origin=(0, 7, 0), x_dir=(1, 0, 0), z_dir=(0, 1, 0))):
        with Locations((8, 8), (-8, -8)):
            Hole(F_1_5_1_5_DURCHMESSER_BOHRUNG1_D / 2, depth=F_1_5_1_5_DURCHMESSER_BOHRUNG1_DEPTH)
            with Locations((0, 0, -(F_1_5_1_5_DURCHMESSER_BOHRUNG1_DEPTH + F_1_5_1_5_DURCHMESSER_BOHRUNG1_TIP / 2))):  # 118° drill point
                Cone(0, F_1_5_1_5_DURCHMESSER_BOHRUNG1_D / 2, F_1_5_1_5_DURCHMESSER_BOHRUNG1_TIP, mode=Mode.SUBTRACT)

    # Skizze12 → Schnitt-Linear austragen4 (cut)
    with BuildSketch(Plane.XZ):
        with BuildLine():
            Line((-22.35, 15.7), (-22.35, 18.85))
            Line((-22.35, 18.85), (-25.5, 18.85))
            ThreePointArc((-25.5, 18.85), (-27.727386361, 17.927386361), (-28.65, 15.7))
            Line((-28.65, 15.7), (-28.65, 12.55))
            Line((-28.65, 12.55), (-25.5, 12.55))
            ThreePointArc((-25.5, 12.55), (-23.272613639, 13.472613639), (-22.35, 15.7))
        make_face()
    schnitt_linear_austragen4 = extrude(amount=-SCHNITT_LINEAR_AUSTRAGEN4_DEPTH, mode=Mode.SUBTRACT)

    # Spiegeln2: Schnitt-Linear austragen4 across plane
    add(schnitt_linear_austragen4.mirror(Plane(origin=(0, 0, 0), x_dir=(0, 0, 1), z_dir=(1, 0, 0))), mode=Mode.SUBTRACT)

    # Spiegeln3: Schnitt-Linear austragen4 across plane
    add(schnitt_linear_austragen4.mirror(Plane.XY), mode=Mode.SUBTRACT)

    # Spiegeln3 copy 1 sketch → Spiegeln3 copy 1 (cut)
    with BuildSketch(Plane(origin=(0, 0, 0), x_dir=(-1, 0, 0), z_dir=(0, -1, 0))):
        with BuildLine():
            Line((-22.35, 15.7), (-22.35, 18.85))
            Line((-22.35, 18.85), (-25.5, 18.85))
            ThreePointArc((-25.5, 18.85), (-27.727386361, 17.927386361), (-28.65, 15.7))
            Line((-28.65, 15.7), (-28.65, 12.55))
            Line((-28.65, 12.55), (-25.5, 12.55))
            ThreePointArc((-25.5, 12.55), (-23.272613639, 13.472613639), (-22.35, 15.7))
        make_face()
    extrude(amount=-SPIEGELN3_COPY_1_DEPTH, mode=Mode.SUBTRACT)


solid = part.part
